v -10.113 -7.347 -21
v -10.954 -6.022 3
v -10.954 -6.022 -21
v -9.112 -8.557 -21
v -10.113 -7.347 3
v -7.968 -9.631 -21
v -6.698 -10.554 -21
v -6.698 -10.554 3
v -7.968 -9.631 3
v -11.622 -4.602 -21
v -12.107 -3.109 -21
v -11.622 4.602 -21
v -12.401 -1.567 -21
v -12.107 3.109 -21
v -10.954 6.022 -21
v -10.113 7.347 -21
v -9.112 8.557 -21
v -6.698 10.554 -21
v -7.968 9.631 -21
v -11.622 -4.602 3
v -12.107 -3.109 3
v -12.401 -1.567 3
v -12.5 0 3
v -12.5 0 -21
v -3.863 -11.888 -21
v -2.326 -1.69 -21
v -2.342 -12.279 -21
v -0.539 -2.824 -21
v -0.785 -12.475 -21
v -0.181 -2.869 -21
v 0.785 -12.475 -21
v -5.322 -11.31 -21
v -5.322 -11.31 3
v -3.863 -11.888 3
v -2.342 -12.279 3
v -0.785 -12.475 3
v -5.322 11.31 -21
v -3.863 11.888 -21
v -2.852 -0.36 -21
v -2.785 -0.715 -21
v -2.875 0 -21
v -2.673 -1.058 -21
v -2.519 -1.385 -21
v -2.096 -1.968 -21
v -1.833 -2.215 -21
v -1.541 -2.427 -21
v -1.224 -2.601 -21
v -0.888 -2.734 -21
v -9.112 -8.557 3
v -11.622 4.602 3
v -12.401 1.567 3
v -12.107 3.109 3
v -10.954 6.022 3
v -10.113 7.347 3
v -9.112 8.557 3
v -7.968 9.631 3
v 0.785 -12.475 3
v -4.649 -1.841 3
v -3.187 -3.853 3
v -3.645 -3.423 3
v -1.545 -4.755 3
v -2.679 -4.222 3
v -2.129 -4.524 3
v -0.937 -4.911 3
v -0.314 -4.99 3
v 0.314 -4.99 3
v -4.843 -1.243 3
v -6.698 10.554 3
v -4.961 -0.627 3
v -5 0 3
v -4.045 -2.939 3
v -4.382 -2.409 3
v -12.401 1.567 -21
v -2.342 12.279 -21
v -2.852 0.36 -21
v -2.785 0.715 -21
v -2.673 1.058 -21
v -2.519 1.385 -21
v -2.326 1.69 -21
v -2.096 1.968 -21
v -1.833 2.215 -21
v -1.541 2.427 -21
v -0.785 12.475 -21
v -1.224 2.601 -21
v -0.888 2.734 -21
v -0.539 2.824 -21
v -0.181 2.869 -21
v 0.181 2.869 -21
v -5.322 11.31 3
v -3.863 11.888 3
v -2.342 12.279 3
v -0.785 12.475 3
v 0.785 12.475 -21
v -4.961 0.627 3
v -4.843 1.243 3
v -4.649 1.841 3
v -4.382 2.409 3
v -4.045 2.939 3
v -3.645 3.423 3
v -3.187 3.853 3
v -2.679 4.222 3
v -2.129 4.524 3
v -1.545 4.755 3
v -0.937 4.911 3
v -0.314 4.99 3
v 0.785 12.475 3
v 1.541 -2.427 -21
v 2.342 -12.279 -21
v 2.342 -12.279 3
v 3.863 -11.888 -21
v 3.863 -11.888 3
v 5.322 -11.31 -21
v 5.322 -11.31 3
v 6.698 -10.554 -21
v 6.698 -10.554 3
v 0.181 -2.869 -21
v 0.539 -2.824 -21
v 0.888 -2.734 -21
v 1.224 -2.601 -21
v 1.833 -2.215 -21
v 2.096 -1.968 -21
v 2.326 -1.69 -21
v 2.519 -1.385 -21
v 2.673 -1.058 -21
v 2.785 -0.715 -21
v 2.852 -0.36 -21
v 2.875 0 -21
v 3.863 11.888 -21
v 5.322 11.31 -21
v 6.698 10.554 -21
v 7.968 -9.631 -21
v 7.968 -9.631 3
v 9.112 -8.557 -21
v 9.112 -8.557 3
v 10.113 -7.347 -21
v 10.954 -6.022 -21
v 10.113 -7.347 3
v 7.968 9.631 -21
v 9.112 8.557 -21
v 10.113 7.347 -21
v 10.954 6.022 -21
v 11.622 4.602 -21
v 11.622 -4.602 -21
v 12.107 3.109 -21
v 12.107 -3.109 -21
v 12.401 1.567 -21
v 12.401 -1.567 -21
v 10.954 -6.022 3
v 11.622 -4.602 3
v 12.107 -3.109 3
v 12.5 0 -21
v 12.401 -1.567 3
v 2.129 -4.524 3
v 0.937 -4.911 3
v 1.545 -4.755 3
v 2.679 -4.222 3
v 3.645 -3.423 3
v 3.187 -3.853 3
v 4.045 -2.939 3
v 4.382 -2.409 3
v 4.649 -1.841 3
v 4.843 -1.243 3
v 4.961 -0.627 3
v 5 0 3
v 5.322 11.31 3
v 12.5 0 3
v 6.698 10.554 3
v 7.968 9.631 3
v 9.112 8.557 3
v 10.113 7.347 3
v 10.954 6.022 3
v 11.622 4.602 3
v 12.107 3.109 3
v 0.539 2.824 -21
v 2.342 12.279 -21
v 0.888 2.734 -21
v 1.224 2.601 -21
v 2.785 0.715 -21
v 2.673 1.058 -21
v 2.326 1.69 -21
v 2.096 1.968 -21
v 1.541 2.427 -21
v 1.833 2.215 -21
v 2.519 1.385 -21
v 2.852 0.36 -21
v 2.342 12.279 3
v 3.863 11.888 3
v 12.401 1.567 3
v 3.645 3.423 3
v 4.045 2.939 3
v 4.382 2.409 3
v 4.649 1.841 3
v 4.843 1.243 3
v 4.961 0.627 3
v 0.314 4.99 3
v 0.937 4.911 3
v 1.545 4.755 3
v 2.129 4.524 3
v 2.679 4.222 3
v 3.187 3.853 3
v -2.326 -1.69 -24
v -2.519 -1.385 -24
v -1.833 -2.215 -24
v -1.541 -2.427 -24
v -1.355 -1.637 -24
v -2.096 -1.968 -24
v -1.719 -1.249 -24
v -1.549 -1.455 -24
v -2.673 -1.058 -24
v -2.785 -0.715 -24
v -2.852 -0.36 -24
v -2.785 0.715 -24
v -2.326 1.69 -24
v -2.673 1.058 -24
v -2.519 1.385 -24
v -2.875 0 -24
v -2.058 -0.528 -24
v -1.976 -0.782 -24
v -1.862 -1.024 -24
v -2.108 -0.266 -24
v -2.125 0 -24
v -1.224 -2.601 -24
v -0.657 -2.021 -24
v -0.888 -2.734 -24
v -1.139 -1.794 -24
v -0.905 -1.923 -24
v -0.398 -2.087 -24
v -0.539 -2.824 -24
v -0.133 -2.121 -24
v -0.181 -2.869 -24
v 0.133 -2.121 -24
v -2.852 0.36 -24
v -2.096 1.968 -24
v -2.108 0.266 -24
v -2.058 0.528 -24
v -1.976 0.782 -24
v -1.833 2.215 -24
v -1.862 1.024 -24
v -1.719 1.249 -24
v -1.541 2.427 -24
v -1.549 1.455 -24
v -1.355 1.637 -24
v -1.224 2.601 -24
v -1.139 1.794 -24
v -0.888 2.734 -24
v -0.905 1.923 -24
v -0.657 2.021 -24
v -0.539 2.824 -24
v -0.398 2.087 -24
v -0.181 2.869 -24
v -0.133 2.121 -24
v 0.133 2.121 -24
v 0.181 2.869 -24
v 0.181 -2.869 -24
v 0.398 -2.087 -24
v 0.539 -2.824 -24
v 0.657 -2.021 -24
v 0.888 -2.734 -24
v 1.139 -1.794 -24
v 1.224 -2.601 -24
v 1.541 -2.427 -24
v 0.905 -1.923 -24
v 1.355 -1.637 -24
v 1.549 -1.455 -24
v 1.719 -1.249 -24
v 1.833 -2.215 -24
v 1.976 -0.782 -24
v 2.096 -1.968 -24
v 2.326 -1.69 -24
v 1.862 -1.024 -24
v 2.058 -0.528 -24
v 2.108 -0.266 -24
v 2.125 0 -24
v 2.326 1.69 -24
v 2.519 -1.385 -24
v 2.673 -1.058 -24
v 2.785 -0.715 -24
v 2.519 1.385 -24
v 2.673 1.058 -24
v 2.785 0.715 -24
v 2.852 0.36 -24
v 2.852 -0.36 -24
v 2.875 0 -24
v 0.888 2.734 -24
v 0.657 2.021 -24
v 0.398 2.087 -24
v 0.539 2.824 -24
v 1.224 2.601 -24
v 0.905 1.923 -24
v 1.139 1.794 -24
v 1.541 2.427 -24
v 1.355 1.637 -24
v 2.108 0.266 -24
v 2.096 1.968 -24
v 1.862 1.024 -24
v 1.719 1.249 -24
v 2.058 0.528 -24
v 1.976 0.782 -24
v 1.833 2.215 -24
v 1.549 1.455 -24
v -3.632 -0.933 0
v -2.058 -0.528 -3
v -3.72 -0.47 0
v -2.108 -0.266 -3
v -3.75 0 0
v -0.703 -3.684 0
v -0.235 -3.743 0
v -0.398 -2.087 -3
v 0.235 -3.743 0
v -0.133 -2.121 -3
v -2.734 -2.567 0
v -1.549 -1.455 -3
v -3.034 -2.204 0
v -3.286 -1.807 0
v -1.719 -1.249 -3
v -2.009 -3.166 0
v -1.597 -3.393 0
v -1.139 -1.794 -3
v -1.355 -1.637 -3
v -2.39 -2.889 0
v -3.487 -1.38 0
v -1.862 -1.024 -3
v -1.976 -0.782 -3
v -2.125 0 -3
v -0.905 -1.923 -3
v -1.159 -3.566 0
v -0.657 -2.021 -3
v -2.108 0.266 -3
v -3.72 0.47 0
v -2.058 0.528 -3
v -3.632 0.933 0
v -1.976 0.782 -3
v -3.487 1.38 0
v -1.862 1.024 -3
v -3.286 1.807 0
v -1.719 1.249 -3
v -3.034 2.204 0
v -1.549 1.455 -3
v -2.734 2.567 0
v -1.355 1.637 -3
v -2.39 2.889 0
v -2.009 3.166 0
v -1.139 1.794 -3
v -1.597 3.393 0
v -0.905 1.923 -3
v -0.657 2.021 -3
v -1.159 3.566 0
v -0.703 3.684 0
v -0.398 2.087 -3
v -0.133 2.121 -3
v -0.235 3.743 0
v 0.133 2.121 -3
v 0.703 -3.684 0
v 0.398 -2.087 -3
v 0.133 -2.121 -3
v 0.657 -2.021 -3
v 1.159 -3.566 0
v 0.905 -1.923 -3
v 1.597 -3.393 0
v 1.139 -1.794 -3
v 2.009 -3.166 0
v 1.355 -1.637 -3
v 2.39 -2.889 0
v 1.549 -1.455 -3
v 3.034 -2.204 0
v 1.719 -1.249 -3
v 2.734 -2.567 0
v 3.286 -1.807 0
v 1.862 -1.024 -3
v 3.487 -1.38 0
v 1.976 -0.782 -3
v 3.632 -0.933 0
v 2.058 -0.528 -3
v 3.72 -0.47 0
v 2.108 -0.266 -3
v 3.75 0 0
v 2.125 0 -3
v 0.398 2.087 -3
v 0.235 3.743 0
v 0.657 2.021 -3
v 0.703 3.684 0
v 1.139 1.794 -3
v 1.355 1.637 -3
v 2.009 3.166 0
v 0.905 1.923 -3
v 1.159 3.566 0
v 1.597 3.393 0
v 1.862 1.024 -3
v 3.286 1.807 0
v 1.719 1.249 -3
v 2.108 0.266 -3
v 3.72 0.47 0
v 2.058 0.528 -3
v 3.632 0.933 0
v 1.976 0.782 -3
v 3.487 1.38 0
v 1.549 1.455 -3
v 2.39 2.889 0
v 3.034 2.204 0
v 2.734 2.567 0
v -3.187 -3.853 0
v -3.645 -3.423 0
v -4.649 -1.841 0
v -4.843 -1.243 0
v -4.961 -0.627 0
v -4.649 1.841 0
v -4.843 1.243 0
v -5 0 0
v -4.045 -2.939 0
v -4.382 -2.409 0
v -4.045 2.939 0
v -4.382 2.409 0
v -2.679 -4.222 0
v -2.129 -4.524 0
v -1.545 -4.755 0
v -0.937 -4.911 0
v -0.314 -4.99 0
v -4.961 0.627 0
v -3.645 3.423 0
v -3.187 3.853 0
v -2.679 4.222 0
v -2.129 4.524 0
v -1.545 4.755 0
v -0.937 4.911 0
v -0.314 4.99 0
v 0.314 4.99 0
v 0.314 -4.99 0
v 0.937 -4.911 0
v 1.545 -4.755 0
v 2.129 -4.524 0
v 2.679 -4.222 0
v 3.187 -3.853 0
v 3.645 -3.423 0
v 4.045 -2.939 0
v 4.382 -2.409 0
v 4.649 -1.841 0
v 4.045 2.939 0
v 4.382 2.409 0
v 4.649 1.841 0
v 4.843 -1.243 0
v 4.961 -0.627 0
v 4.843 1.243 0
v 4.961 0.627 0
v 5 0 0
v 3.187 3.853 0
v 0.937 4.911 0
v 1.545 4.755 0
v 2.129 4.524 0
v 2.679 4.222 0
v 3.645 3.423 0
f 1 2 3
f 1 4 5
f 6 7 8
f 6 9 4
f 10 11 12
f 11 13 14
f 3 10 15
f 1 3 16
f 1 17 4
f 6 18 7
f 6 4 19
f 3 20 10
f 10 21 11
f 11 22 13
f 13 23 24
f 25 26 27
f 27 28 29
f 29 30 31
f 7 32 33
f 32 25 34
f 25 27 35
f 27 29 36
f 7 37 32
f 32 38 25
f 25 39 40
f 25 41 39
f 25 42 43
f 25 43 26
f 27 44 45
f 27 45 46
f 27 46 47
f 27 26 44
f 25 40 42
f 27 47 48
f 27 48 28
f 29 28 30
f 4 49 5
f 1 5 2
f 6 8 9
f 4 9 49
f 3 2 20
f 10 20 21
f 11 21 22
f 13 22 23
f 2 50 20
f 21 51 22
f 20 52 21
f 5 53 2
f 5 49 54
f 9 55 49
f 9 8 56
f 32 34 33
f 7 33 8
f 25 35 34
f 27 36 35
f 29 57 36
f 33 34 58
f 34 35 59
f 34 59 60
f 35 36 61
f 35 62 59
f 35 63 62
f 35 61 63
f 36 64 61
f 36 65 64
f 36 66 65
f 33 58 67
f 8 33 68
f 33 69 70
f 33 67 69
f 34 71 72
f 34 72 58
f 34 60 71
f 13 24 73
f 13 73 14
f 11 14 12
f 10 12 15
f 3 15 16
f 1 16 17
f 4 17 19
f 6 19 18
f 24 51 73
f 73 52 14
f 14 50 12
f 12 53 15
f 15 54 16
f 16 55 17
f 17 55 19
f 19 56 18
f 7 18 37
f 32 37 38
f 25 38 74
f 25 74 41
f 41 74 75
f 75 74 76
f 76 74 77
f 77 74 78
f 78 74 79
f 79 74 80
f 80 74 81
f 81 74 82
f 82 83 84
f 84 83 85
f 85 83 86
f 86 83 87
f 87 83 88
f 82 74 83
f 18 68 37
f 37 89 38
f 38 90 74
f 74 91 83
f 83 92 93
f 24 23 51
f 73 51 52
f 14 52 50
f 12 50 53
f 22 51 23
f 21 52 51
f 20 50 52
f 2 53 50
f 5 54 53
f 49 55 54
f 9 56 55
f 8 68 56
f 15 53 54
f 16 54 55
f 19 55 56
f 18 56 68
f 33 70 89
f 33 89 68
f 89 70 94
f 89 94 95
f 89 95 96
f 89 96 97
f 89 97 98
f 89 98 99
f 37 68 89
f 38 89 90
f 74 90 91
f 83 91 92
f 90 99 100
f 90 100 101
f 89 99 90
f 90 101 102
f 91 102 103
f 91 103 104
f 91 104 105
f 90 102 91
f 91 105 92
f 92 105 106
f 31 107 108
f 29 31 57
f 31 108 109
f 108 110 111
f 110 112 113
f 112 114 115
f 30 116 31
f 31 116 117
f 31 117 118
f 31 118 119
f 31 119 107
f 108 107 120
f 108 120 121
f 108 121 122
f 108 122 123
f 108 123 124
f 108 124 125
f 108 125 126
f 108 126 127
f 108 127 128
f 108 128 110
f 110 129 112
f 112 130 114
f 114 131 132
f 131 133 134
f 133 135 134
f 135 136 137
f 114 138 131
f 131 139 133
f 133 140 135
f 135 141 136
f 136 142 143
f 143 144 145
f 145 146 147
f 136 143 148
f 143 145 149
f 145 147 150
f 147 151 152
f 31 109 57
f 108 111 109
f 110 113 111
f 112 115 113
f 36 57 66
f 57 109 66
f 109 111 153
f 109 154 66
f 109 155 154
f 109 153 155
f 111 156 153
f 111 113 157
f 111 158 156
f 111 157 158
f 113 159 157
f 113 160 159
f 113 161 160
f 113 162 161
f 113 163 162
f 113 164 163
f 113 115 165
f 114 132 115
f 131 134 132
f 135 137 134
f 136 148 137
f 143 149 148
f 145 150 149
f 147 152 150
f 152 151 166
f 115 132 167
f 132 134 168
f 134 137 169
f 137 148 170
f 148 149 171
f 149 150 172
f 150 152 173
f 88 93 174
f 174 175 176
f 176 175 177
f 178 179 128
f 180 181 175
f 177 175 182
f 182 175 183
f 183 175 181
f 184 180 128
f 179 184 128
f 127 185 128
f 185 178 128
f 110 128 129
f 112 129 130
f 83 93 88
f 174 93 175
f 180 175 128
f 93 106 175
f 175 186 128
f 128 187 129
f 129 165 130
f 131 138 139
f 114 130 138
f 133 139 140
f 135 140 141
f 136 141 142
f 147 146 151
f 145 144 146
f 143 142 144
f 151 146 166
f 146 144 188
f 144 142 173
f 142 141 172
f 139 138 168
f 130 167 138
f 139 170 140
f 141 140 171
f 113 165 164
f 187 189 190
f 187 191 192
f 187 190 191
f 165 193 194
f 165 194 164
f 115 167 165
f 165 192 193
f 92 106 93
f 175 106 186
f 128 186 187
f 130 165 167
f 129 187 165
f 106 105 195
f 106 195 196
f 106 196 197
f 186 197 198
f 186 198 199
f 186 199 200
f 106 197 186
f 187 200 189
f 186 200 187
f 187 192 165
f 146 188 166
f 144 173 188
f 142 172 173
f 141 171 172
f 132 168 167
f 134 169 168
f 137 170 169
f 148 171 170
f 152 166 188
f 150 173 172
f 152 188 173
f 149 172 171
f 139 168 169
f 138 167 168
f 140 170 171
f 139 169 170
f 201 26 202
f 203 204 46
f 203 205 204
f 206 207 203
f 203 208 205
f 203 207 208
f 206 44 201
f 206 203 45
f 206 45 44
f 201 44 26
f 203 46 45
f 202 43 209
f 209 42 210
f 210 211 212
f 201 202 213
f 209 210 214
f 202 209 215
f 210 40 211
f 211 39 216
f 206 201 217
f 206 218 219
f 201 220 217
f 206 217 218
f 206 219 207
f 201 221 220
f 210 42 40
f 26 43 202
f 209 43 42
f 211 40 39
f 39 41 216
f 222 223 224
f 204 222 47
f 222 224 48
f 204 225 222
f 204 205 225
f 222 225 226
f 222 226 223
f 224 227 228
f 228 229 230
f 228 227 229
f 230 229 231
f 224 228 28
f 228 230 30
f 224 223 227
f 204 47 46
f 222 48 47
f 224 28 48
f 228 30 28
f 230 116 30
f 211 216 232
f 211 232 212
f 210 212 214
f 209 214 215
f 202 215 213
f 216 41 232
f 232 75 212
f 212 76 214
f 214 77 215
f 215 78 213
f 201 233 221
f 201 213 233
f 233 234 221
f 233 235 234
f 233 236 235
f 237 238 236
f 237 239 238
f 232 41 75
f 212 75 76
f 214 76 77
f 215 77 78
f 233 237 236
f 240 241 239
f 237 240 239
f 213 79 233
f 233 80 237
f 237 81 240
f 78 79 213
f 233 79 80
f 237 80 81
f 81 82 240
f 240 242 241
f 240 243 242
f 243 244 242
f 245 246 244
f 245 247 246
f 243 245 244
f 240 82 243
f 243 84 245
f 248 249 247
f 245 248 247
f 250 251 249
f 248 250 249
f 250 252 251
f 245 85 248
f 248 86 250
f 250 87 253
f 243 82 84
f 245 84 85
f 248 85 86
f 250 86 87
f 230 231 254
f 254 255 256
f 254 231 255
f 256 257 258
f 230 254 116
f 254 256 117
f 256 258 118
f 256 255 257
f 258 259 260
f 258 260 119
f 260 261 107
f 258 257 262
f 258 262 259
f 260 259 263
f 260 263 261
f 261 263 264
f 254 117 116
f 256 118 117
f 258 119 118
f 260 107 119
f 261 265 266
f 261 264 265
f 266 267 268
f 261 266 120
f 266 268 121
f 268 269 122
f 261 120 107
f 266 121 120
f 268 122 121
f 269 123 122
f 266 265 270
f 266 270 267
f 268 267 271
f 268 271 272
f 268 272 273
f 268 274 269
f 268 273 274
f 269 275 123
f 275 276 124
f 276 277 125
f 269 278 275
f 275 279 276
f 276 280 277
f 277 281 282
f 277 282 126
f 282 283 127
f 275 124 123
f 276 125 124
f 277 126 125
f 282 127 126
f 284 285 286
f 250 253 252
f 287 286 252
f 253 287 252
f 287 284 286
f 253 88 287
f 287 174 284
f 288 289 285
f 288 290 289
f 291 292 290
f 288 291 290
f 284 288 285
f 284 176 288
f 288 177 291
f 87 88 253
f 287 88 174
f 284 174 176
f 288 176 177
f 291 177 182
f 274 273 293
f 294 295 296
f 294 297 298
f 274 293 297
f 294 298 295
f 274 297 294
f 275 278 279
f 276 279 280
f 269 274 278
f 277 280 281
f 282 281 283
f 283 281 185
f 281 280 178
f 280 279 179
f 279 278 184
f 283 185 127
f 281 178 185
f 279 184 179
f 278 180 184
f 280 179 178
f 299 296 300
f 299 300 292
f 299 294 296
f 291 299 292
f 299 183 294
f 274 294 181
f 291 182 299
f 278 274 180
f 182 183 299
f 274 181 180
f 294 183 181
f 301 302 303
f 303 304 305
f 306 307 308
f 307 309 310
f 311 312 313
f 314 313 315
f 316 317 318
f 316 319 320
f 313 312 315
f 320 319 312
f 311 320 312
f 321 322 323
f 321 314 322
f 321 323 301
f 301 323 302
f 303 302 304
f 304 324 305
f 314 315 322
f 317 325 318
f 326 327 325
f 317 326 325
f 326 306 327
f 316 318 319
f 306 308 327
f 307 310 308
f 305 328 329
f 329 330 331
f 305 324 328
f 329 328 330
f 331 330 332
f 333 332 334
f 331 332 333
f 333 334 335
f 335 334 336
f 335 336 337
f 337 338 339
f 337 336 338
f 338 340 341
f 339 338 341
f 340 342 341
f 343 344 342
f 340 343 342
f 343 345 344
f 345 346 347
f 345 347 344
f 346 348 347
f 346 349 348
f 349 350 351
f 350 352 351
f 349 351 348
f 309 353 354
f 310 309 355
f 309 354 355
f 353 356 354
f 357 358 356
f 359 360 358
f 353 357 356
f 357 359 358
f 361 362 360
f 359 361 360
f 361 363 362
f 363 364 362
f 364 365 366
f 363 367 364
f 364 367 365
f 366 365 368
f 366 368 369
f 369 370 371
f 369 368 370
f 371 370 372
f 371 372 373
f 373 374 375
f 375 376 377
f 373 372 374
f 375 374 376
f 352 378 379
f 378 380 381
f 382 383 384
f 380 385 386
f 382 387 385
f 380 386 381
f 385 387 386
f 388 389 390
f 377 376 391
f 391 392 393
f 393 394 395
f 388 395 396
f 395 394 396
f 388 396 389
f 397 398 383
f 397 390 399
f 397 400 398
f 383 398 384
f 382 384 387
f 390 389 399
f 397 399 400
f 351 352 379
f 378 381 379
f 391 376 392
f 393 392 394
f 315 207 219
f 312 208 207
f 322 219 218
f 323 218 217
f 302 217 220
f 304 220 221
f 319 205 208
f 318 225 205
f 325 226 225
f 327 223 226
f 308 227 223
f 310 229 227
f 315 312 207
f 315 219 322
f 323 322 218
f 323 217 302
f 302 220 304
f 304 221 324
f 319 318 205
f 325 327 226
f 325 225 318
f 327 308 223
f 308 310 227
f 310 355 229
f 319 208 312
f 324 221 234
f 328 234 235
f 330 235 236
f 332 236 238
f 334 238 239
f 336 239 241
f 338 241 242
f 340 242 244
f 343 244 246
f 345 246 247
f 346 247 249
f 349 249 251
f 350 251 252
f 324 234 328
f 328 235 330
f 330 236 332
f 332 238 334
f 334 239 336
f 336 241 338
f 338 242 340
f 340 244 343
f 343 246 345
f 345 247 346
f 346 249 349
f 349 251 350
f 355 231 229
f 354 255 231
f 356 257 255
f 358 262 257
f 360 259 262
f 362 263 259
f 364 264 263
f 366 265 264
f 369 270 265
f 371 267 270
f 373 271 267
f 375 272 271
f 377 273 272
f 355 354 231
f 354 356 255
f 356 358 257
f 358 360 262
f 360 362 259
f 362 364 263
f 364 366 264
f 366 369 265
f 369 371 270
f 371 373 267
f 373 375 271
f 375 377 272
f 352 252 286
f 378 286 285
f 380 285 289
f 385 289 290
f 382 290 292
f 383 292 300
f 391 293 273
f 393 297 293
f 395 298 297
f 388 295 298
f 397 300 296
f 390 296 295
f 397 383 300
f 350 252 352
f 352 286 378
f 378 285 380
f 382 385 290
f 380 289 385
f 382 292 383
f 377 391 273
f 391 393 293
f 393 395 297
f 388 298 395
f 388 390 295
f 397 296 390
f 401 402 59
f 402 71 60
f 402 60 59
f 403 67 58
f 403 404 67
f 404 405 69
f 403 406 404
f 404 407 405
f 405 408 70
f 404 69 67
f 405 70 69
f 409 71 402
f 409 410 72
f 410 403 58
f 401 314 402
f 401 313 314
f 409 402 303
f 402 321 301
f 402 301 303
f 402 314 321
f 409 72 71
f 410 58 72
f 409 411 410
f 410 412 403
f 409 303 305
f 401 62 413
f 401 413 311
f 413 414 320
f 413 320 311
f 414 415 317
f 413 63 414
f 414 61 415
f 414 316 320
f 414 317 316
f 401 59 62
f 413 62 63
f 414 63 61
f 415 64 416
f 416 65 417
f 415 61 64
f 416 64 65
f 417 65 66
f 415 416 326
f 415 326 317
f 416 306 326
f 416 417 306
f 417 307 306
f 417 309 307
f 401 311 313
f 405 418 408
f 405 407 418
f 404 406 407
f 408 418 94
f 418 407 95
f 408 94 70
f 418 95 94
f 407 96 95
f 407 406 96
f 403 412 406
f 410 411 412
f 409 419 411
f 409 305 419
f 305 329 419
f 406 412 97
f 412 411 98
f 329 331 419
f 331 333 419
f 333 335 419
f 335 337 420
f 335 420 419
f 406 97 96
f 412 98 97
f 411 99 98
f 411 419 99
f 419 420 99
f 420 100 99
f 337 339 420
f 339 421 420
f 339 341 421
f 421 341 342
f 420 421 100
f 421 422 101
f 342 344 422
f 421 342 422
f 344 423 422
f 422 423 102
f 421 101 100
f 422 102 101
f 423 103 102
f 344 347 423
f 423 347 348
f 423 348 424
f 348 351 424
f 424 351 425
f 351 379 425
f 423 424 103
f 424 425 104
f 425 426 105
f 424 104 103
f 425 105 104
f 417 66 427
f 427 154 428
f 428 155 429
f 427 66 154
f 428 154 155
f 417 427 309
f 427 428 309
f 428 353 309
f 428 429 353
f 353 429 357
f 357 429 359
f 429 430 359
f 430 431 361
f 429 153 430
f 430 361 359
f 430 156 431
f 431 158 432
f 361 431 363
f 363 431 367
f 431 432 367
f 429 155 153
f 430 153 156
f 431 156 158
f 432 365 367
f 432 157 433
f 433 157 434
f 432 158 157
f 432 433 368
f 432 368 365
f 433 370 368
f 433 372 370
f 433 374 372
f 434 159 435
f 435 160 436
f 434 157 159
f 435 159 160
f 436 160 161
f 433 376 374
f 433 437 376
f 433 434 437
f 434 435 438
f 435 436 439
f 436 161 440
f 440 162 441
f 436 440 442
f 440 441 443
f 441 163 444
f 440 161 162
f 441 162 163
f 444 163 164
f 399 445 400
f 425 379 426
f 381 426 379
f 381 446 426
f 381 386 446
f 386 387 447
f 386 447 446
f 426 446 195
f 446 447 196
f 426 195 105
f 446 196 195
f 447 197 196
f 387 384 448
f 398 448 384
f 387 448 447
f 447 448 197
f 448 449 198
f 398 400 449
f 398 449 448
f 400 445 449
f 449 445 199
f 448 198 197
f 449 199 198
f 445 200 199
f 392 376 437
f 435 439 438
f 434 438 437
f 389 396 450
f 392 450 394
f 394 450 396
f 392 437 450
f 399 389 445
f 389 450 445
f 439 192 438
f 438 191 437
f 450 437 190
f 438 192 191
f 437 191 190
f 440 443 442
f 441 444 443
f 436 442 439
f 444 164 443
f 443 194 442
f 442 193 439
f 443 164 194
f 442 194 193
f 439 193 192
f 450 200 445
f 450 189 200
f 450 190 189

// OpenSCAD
$fn = 50;

difference() {
	union() {
		translate(v = [0, 0, -21.0]) {
			cylinder(h = 24, r = 12.5);
		}
		#translate(v = [0, 0, -24.0]) {
			cylinder(h = 24, r = 2.875);
		}
	}
	union() {
		translate(v = [0, 0, 0]) {
			rotate(a = [0, 0, 0]) {
				difference() {
					union() {
						translate(v = [0, 0, -24.0]) {
							cylinder(h = 24, r = 2.0);
						}
						translate(v = [0, 0, -3]) {
							cylinder(h = 3, r1 = 2.125, r2 = 3.75);
						}
						translate(v = [0, 0, -24.0]) {
							cylinder(h = 24, r = 2.125);
						}
						translate(v = [0, 0, -24.0]) {
							cylinder(h = 24, r = 2.0);
						}
					}
					union();
				}
			}
		}
		#cylinder(h = 3, r = 5.0);
	}
}
